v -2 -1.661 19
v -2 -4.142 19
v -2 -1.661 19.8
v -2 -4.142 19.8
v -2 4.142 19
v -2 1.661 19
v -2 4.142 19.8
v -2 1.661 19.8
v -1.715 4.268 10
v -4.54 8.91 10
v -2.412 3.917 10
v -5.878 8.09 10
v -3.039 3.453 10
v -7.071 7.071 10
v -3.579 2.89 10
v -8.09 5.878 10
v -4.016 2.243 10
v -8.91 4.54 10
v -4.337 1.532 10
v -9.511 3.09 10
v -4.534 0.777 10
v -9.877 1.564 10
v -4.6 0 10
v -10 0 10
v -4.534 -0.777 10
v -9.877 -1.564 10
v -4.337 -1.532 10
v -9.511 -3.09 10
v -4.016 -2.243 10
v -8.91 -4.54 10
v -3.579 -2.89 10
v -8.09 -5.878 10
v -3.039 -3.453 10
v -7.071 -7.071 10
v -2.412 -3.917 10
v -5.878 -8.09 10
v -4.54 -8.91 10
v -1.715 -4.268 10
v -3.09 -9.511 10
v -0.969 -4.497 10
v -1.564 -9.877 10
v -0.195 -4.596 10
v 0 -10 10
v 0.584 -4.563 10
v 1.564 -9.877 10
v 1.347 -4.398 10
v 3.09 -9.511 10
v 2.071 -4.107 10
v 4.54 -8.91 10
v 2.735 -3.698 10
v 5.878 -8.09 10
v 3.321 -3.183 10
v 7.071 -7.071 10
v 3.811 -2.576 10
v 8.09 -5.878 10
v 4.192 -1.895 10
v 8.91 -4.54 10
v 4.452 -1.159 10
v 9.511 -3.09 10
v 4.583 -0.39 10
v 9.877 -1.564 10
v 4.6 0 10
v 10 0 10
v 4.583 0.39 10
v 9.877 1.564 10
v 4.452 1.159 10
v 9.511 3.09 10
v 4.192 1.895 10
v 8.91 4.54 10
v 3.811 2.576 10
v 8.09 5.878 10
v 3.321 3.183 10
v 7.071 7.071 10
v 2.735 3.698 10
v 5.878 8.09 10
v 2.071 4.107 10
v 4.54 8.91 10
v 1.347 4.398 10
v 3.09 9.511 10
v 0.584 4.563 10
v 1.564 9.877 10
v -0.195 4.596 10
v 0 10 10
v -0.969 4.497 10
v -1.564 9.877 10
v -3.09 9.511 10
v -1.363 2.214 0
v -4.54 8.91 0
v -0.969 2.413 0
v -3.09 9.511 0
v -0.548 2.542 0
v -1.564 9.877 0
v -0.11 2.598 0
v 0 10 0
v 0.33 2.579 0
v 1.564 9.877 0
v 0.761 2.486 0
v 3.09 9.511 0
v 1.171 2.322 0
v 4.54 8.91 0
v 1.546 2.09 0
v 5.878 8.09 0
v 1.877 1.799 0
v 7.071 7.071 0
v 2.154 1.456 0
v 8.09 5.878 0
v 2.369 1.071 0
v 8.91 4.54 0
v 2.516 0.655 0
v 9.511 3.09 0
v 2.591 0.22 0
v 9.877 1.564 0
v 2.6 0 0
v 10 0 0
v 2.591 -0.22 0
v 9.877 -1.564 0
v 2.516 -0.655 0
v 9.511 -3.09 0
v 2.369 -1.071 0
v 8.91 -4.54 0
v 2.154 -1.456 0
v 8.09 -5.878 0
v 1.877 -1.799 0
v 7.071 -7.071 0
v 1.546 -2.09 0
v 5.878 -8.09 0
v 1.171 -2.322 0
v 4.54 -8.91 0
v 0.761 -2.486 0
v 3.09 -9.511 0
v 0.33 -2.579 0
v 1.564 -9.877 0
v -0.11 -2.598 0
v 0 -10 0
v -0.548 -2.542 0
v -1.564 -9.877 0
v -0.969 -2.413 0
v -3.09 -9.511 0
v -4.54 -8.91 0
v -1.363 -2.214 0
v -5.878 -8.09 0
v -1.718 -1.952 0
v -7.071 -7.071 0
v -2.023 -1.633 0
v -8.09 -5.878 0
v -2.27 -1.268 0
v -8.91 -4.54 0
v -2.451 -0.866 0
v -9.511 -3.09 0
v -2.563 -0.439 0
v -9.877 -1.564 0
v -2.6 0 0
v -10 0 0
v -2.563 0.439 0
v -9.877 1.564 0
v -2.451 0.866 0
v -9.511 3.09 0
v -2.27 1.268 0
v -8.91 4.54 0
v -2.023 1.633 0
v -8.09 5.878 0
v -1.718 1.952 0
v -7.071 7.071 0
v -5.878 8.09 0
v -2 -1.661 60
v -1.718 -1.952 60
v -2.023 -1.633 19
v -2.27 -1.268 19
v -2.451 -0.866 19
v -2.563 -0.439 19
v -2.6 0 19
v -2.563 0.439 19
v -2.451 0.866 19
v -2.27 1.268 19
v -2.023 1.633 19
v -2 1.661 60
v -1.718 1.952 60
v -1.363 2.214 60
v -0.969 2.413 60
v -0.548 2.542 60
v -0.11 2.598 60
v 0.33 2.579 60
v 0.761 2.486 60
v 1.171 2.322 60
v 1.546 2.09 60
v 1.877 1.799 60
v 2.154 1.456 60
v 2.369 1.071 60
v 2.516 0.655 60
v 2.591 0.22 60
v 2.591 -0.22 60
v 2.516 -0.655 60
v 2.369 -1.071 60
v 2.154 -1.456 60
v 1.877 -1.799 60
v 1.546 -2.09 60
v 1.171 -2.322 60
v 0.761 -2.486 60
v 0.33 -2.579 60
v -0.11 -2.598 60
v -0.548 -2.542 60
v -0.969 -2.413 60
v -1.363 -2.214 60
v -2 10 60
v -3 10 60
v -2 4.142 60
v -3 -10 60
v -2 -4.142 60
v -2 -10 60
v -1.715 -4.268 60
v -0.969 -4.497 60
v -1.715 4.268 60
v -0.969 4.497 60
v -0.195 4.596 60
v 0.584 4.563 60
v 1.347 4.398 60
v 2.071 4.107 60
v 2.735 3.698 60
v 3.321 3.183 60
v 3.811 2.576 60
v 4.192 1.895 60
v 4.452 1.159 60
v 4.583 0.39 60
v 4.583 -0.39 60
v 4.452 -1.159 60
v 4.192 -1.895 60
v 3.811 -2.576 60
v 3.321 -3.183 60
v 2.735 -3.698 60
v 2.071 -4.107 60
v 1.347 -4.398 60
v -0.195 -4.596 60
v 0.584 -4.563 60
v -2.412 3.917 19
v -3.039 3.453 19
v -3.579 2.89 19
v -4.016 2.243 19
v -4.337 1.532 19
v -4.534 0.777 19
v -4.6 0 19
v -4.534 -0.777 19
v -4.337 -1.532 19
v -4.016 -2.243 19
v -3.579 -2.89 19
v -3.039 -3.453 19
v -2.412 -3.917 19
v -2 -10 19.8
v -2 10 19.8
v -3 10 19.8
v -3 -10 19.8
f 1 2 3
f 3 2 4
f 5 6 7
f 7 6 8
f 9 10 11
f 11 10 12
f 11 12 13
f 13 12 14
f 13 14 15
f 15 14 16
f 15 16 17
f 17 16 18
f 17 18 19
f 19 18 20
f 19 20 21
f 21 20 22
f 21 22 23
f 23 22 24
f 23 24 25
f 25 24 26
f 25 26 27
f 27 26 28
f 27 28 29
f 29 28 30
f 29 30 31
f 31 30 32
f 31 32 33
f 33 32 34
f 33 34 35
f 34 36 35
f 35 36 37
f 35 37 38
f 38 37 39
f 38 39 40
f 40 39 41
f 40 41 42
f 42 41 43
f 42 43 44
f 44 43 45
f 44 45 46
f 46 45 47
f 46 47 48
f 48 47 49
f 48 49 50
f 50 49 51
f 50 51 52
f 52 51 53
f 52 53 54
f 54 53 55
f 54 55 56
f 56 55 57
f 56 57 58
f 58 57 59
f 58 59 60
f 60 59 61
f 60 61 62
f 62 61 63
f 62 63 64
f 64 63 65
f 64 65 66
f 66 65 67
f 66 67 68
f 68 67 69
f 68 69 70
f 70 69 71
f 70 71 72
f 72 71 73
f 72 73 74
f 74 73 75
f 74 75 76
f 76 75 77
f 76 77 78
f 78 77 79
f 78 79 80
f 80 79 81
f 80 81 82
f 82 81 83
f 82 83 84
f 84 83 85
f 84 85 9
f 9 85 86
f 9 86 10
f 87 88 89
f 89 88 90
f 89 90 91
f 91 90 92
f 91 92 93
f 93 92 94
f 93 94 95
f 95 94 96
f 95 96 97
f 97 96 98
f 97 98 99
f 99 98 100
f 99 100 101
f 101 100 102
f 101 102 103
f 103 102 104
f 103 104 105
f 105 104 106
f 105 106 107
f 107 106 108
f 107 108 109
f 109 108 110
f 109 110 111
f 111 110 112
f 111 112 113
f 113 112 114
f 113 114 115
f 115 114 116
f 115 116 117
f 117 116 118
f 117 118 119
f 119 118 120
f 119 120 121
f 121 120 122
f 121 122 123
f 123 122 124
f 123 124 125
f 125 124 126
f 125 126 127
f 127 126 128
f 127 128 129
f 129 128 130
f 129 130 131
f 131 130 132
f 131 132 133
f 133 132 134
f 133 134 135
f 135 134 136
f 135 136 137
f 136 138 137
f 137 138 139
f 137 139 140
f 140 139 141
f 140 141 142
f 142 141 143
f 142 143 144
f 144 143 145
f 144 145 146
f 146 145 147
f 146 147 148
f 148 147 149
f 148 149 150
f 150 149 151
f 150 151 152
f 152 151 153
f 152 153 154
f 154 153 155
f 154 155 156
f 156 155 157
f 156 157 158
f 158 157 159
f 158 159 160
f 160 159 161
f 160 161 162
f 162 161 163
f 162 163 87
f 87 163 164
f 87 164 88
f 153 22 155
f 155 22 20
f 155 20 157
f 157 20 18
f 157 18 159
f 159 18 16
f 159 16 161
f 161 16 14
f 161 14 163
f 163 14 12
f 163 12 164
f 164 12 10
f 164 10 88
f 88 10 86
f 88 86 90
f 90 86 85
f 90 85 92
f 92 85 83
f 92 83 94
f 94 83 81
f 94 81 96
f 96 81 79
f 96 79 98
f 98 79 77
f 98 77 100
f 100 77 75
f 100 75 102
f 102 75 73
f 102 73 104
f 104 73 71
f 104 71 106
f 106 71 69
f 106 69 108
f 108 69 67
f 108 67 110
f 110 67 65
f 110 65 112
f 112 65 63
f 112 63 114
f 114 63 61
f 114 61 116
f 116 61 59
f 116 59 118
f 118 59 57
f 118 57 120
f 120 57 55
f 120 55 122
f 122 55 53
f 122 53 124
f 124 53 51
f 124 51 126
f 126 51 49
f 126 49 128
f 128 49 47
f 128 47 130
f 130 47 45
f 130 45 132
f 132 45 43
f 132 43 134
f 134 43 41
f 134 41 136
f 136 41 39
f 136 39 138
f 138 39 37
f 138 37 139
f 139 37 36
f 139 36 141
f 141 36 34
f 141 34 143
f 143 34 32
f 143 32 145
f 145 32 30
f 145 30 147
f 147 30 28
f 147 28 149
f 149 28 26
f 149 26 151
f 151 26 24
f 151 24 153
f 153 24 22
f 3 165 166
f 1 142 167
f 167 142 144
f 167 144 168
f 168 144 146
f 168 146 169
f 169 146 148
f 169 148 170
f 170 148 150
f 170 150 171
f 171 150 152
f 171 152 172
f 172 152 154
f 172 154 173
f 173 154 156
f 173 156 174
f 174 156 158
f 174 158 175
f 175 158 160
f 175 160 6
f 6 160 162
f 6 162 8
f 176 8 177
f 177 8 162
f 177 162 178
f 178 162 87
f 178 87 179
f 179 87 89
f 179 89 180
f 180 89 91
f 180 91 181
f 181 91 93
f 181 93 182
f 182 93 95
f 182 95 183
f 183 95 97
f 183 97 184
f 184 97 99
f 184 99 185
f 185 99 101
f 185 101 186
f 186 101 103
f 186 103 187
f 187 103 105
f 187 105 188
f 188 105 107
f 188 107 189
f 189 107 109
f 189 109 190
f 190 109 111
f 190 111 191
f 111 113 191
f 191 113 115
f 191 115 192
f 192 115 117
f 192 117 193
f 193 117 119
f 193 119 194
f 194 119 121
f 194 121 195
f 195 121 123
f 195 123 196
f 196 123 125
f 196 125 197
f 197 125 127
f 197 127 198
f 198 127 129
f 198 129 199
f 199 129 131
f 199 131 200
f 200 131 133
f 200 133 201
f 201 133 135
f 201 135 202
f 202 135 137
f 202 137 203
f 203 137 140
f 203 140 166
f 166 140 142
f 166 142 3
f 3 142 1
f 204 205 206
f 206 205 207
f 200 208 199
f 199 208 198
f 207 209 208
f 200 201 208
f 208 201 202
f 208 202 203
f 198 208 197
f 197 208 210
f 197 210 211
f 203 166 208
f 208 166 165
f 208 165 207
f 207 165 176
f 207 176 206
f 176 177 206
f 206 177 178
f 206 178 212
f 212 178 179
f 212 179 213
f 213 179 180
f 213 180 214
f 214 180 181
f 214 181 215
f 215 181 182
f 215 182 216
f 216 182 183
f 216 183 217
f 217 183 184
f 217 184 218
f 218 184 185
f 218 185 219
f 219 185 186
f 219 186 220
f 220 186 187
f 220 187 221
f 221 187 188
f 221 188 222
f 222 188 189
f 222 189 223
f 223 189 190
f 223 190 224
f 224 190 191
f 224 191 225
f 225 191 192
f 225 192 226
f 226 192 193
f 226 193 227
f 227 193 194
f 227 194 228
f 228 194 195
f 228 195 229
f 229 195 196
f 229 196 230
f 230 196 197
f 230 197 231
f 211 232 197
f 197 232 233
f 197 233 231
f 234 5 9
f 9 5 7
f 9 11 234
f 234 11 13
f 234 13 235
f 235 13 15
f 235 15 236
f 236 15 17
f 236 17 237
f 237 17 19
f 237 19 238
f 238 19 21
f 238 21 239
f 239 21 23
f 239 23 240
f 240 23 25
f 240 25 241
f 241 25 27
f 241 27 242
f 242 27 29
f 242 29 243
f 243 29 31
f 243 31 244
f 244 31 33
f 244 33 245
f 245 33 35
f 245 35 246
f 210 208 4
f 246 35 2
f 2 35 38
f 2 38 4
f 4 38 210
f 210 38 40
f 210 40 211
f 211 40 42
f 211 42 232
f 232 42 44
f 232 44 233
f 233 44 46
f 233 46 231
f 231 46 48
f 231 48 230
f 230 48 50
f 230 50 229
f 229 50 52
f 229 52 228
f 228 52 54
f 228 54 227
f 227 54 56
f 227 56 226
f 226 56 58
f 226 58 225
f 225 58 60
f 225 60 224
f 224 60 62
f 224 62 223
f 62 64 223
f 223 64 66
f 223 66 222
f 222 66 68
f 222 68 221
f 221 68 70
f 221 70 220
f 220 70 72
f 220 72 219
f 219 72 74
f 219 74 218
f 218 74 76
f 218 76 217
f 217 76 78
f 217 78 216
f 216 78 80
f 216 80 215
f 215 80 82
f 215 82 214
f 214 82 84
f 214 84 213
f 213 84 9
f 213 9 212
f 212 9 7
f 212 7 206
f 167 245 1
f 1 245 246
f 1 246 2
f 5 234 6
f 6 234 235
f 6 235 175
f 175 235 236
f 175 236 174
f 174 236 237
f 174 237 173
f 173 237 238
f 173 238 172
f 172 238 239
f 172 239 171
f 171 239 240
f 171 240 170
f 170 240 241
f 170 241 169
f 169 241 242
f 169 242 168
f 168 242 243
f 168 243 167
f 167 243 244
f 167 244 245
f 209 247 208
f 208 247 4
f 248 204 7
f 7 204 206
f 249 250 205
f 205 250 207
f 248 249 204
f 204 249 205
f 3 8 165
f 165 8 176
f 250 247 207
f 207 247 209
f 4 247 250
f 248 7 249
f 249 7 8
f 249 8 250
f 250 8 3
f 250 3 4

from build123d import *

# Parameters (mm, degrees)
SKETCH_1_R          = 10
SKETCH_1_R_2        = 2.6
EXTRUDE_1_DEPTH     = 10
SKETCH_2_R          = 4.6
SKETCH_2_R_2        = 2.6
EXTRUDE_2_DEPTH     = 50
CUT_EXTRUDE_1_DEPTH = 41
SKETCH_5_W          = 1
SKETCH_5_H          = 20
EXTRUDE_3_DEPTH     = 40.2


with BuildPart() as part:
    # 草图1 → 凸台-拉伸1 (new body)
    with BuildSketch(Plane.XY):
        Circle(SKETCH_1_R)
        Circle(SKETCH_1_R_2, mode=Mode.SUBTRACT)
    extrude(amount=EXTRUDE_1_DEPTH)

    # 草图2 → 凸台-拉伸2 (add)
    with BuildSketch(Plane.XY.offset(10)):
        Circle(SKETCH_2_R)
        Circle(SKETCH_2_R_2, mode=Mode.SUBTRACT)
    extrude(amount=EXTRUDE_2_DEPTH)

    # 草图3 → 切除-拉伸1 (cut)
    with BuildSketch(Plane.XY.offset(60)):
        with BuildLine():
            Line((-2, 4.142463035), (-2, -4.142463035))
            ThreePointArc((-2, -4.142463035), (-4.6, 0), (-2, 4.142463035))
        make_face()
    extrude(amount=-CUT_EXTRUDE_1_DEPTH, mode=Mode.SUBTRACT)

    # 草图5 → 凸台-拉伸3 (add)
    with BuildSketch(Plane.XY.offset(60)):
        with Locations((-2.5, 0)):
            Rectangle(SKETCH_5_W, SKETCH_5_H)
    extrude(amount=-EXTRUDE_3_DEPTH)


solid = part.part
